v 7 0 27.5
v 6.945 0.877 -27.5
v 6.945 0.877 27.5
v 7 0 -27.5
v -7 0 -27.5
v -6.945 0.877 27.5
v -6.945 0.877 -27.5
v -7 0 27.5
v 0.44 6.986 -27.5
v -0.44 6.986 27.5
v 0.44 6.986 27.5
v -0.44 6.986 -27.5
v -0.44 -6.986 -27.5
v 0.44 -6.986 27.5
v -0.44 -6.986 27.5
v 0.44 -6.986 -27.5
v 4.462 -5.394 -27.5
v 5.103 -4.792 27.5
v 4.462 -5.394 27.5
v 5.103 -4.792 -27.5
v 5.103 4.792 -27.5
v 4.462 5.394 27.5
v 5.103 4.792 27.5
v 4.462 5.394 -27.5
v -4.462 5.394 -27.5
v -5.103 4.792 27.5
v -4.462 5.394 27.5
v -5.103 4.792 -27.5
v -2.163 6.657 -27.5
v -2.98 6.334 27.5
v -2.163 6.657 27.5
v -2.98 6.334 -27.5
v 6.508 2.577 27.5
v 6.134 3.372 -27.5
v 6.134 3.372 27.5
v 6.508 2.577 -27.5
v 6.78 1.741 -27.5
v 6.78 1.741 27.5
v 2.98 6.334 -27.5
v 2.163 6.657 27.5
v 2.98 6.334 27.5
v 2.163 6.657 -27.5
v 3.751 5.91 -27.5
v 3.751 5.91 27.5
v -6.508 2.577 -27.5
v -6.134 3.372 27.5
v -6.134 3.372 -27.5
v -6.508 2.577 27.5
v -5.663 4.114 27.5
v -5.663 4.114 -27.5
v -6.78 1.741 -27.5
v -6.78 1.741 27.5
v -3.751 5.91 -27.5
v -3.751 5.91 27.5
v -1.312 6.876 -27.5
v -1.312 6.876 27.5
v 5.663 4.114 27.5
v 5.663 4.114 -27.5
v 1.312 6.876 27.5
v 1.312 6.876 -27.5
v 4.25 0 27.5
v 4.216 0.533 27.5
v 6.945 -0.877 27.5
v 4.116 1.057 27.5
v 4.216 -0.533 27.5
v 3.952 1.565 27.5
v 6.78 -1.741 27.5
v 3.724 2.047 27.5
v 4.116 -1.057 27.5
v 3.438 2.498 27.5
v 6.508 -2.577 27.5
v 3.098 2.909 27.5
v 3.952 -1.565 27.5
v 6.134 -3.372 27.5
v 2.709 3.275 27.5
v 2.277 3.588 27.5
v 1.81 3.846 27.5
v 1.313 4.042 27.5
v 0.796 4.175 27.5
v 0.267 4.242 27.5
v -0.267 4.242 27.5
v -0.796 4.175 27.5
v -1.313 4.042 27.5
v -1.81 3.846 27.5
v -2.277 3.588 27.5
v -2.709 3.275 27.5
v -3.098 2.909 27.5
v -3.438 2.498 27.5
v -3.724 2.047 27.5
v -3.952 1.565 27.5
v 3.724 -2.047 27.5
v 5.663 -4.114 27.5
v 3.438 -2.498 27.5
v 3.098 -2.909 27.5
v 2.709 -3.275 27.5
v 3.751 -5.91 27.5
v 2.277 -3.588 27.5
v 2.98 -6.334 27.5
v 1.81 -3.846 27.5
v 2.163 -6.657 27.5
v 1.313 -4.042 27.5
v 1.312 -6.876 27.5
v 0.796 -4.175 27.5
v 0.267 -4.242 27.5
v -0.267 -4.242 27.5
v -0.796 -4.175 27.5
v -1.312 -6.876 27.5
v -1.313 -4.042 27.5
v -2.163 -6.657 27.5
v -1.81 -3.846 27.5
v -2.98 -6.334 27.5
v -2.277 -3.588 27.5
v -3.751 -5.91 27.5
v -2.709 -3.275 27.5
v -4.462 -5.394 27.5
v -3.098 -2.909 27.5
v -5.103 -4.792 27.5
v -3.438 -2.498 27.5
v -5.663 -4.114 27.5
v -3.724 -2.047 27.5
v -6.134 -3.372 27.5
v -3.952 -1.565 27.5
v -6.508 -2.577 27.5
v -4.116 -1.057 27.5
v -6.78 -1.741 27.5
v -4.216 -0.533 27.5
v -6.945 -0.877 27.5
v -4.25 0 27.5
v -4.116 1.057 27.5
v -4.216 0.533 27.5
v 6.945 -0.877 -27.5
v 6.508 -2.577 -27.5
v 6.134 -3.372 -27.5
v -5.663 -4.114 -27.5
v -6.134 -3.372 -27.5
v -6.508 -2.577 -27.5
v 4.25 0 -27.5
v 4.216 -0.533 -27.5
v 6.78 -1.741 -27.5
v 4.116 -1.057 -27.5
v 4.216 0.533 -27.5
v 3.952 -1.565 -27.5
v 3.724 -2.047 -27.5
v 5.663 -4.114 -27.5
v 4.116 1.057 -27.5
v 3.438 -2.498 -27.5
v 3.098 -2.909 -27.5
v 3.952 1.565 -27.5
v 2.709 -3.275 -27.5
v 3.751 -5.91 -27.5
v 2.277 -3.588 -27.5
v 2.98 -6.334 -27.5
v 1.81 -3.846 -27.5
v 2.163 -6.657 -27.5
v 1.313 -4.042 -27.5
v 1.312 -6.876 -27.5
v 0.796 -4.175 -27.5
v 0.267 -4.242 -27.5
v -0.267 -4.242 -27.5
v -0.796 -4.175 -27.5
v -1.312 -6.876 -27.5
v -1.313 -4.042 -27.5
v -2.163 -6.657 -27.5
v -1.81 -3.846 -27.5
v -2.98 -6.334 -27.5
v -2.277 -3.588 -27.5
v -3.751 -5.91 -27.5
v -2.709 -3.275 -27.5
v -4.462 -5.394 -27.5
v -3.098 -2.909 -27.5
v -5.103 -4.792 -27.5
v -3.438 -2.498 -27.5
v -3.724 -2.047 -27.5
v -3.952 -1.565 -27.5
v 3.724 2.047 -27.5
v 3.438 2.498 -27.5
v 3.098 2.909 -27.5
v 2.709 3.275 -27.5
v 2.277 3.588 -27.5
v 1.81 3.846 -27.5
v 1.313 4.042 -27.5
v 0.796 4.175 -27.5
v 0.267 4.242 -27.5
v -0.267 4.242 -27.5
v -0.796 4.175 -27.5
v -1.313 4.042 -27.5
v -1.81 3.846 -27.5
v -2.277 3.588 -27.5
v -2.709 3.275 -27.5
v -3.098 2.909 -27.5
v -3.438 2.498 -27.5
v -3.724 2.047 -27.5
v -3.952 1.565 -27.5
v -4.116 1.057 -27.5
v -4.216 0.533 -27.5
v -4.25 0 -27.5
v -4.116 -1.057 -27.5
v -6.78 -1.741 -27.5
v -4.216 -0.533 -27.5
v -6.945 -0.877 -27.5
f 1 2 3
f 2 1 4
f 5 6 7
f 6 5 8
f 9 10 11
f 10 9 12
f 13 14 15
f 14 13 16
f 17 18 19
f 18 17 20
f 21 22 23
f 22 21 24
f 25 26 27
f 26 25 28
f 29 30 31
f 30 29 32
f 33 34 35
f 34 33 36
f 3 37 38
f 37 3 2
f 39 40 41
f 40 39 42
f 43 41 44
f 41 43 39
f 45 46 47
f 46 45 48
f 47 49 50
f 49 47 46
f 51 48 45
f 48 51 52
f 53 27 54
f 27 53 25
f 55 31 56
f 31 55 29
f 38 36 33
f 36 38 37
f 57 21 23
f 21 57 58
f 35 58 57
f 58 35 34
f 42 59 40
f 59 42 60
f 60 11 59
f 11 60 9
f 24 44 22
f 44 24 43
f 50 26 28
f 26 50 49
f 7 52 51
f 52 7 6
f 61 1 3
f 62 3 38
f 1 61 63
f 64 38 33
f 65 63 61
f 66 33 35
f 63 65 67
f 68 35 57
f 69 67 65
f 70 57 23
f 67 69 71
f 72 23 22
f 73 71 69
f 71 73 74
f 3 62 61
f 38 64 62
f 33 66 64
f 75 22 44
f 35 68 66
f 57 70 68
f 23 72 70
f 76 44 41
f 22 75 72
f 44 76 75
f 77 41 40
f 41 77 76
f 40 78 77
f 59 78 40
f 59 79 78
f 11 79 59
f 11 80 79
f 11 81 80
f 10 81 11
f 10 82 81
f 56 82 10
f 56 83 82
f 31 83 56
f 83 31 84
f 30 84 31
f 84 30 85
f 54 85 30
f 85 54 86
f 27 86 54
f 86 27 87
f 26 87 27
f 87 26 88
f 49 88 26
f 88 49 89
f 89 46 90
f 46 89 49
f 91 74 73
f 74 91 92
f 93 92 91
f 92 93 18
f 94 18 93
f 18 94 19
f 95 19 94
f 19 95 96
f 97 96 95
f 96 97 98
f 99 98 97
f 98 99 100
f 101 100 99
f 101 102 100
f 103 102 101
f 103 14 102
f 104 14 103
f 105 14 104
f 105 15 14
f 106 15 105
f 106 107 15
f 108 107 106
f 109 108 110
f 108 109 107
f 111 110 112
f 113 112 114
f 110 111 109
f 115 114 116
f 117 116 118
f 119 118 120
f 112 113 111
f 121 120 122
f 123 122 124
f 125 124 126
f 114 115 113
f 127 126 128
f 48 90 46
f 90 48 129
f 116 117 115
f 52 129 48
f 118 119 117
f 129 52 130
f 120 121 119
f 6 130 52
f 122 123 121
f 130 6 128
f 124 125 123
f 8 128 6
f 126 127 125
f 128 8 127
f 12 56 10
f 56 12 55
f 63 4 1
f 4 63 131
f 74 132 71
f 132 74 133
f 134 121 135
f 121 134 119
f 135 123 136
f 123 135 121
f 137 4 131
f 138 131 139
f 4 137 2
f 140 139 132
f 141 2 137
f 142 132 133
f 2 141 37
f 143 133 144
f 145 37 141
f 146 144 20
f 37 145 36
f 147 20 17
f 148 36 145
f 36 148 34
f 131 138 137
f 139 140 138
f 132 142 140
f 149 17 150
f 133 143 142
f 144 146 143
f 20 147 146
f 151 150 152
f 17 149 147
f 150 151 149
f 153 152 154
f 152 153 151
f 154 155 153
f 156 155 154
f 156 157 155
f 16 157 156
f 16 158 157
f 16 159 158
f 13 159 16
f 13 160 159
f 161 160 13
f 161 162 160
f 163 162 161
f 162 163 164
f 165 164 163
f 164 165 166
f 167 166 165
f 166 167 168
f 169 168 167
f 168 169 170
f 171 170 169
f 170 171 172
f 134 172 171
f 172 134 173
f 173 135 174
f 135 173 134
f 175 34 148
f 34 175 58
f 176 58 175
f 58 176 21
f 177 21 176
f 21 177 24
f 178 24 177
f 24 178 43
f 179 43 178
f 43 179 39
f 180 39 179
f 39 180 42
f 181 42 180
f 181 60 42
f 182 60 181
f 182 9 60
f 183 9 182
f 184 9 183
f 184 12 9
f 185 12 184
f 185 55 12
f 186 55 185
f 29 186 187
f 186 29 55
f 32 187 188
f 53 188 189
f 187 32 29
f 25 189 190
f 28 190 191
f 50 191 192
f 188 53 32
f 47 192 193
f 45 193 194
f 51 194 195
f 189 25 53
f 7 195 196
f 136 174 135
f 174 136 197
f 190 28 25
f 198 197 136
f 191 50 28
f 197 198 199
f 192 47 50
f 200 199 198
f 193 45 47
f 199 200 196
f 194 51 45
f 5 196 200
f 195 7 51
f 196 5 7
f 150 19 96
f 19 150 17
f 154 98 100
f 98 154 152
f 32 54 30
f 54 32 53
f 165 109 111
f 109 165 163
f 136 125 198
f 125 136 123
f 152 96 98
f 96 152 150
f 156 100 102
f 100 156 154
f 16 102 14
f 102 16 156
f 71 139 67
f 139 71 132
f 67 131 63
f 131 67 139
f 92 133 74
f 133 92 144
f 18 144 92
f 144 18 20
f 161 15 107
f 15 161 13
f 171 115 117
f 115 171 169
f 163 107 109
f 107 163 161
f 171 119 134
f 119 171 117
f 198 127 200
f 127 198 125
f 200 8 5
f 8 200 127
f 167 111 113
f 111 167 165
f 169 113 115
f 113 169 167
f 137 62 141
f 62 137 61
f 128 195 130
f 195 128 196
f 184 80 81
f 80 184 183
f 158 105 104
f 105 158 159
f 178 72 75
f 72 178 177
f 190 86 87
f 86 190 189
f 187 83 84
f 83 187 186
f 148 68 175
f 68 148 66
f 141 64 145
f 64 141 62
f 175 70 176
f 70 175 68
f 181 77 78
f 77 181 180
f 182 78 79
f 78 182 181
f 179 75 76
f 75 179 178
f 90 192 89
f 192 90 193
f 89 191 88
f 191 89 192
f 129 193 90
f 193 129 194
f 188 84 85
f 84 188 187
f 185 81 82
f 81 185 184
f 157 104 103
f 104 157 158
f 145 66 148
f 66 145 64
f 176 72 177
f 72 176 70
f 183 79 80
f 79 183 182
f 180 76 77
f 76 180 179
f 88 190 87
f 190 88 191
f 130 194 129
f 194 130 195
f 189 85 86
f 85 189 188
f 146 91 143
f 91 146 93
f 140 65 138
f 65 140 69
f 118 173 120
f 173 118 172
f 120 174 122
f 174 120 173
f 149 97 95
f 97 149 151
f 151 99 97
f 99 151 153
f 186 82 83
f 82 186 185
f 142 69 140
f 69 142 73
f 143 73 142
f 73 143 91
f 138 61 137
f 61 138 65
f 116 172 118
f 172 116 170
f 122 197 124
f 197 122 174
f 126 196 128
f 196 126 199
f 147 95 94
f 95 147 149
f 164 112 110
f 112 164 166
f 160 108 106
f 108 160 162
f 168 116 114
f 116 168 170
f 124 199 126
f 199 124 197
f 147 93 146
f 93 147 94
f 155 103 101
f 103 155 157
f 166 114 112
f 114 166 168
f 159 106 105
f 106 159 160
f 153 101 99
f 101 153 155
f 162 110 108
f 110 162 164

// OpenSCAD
$fn = 50;


difference() {
	union() {
		translate(v = [0, 0, -27.5000000000]) {
			cylinder(h = 55, r = 7.0000000000);
		}
	}
	union() {
		translate(v = [0, 0, -100.0000000000]) {
			cylinder(h = 200, r = 4.2500000000);
		}
	}
}
